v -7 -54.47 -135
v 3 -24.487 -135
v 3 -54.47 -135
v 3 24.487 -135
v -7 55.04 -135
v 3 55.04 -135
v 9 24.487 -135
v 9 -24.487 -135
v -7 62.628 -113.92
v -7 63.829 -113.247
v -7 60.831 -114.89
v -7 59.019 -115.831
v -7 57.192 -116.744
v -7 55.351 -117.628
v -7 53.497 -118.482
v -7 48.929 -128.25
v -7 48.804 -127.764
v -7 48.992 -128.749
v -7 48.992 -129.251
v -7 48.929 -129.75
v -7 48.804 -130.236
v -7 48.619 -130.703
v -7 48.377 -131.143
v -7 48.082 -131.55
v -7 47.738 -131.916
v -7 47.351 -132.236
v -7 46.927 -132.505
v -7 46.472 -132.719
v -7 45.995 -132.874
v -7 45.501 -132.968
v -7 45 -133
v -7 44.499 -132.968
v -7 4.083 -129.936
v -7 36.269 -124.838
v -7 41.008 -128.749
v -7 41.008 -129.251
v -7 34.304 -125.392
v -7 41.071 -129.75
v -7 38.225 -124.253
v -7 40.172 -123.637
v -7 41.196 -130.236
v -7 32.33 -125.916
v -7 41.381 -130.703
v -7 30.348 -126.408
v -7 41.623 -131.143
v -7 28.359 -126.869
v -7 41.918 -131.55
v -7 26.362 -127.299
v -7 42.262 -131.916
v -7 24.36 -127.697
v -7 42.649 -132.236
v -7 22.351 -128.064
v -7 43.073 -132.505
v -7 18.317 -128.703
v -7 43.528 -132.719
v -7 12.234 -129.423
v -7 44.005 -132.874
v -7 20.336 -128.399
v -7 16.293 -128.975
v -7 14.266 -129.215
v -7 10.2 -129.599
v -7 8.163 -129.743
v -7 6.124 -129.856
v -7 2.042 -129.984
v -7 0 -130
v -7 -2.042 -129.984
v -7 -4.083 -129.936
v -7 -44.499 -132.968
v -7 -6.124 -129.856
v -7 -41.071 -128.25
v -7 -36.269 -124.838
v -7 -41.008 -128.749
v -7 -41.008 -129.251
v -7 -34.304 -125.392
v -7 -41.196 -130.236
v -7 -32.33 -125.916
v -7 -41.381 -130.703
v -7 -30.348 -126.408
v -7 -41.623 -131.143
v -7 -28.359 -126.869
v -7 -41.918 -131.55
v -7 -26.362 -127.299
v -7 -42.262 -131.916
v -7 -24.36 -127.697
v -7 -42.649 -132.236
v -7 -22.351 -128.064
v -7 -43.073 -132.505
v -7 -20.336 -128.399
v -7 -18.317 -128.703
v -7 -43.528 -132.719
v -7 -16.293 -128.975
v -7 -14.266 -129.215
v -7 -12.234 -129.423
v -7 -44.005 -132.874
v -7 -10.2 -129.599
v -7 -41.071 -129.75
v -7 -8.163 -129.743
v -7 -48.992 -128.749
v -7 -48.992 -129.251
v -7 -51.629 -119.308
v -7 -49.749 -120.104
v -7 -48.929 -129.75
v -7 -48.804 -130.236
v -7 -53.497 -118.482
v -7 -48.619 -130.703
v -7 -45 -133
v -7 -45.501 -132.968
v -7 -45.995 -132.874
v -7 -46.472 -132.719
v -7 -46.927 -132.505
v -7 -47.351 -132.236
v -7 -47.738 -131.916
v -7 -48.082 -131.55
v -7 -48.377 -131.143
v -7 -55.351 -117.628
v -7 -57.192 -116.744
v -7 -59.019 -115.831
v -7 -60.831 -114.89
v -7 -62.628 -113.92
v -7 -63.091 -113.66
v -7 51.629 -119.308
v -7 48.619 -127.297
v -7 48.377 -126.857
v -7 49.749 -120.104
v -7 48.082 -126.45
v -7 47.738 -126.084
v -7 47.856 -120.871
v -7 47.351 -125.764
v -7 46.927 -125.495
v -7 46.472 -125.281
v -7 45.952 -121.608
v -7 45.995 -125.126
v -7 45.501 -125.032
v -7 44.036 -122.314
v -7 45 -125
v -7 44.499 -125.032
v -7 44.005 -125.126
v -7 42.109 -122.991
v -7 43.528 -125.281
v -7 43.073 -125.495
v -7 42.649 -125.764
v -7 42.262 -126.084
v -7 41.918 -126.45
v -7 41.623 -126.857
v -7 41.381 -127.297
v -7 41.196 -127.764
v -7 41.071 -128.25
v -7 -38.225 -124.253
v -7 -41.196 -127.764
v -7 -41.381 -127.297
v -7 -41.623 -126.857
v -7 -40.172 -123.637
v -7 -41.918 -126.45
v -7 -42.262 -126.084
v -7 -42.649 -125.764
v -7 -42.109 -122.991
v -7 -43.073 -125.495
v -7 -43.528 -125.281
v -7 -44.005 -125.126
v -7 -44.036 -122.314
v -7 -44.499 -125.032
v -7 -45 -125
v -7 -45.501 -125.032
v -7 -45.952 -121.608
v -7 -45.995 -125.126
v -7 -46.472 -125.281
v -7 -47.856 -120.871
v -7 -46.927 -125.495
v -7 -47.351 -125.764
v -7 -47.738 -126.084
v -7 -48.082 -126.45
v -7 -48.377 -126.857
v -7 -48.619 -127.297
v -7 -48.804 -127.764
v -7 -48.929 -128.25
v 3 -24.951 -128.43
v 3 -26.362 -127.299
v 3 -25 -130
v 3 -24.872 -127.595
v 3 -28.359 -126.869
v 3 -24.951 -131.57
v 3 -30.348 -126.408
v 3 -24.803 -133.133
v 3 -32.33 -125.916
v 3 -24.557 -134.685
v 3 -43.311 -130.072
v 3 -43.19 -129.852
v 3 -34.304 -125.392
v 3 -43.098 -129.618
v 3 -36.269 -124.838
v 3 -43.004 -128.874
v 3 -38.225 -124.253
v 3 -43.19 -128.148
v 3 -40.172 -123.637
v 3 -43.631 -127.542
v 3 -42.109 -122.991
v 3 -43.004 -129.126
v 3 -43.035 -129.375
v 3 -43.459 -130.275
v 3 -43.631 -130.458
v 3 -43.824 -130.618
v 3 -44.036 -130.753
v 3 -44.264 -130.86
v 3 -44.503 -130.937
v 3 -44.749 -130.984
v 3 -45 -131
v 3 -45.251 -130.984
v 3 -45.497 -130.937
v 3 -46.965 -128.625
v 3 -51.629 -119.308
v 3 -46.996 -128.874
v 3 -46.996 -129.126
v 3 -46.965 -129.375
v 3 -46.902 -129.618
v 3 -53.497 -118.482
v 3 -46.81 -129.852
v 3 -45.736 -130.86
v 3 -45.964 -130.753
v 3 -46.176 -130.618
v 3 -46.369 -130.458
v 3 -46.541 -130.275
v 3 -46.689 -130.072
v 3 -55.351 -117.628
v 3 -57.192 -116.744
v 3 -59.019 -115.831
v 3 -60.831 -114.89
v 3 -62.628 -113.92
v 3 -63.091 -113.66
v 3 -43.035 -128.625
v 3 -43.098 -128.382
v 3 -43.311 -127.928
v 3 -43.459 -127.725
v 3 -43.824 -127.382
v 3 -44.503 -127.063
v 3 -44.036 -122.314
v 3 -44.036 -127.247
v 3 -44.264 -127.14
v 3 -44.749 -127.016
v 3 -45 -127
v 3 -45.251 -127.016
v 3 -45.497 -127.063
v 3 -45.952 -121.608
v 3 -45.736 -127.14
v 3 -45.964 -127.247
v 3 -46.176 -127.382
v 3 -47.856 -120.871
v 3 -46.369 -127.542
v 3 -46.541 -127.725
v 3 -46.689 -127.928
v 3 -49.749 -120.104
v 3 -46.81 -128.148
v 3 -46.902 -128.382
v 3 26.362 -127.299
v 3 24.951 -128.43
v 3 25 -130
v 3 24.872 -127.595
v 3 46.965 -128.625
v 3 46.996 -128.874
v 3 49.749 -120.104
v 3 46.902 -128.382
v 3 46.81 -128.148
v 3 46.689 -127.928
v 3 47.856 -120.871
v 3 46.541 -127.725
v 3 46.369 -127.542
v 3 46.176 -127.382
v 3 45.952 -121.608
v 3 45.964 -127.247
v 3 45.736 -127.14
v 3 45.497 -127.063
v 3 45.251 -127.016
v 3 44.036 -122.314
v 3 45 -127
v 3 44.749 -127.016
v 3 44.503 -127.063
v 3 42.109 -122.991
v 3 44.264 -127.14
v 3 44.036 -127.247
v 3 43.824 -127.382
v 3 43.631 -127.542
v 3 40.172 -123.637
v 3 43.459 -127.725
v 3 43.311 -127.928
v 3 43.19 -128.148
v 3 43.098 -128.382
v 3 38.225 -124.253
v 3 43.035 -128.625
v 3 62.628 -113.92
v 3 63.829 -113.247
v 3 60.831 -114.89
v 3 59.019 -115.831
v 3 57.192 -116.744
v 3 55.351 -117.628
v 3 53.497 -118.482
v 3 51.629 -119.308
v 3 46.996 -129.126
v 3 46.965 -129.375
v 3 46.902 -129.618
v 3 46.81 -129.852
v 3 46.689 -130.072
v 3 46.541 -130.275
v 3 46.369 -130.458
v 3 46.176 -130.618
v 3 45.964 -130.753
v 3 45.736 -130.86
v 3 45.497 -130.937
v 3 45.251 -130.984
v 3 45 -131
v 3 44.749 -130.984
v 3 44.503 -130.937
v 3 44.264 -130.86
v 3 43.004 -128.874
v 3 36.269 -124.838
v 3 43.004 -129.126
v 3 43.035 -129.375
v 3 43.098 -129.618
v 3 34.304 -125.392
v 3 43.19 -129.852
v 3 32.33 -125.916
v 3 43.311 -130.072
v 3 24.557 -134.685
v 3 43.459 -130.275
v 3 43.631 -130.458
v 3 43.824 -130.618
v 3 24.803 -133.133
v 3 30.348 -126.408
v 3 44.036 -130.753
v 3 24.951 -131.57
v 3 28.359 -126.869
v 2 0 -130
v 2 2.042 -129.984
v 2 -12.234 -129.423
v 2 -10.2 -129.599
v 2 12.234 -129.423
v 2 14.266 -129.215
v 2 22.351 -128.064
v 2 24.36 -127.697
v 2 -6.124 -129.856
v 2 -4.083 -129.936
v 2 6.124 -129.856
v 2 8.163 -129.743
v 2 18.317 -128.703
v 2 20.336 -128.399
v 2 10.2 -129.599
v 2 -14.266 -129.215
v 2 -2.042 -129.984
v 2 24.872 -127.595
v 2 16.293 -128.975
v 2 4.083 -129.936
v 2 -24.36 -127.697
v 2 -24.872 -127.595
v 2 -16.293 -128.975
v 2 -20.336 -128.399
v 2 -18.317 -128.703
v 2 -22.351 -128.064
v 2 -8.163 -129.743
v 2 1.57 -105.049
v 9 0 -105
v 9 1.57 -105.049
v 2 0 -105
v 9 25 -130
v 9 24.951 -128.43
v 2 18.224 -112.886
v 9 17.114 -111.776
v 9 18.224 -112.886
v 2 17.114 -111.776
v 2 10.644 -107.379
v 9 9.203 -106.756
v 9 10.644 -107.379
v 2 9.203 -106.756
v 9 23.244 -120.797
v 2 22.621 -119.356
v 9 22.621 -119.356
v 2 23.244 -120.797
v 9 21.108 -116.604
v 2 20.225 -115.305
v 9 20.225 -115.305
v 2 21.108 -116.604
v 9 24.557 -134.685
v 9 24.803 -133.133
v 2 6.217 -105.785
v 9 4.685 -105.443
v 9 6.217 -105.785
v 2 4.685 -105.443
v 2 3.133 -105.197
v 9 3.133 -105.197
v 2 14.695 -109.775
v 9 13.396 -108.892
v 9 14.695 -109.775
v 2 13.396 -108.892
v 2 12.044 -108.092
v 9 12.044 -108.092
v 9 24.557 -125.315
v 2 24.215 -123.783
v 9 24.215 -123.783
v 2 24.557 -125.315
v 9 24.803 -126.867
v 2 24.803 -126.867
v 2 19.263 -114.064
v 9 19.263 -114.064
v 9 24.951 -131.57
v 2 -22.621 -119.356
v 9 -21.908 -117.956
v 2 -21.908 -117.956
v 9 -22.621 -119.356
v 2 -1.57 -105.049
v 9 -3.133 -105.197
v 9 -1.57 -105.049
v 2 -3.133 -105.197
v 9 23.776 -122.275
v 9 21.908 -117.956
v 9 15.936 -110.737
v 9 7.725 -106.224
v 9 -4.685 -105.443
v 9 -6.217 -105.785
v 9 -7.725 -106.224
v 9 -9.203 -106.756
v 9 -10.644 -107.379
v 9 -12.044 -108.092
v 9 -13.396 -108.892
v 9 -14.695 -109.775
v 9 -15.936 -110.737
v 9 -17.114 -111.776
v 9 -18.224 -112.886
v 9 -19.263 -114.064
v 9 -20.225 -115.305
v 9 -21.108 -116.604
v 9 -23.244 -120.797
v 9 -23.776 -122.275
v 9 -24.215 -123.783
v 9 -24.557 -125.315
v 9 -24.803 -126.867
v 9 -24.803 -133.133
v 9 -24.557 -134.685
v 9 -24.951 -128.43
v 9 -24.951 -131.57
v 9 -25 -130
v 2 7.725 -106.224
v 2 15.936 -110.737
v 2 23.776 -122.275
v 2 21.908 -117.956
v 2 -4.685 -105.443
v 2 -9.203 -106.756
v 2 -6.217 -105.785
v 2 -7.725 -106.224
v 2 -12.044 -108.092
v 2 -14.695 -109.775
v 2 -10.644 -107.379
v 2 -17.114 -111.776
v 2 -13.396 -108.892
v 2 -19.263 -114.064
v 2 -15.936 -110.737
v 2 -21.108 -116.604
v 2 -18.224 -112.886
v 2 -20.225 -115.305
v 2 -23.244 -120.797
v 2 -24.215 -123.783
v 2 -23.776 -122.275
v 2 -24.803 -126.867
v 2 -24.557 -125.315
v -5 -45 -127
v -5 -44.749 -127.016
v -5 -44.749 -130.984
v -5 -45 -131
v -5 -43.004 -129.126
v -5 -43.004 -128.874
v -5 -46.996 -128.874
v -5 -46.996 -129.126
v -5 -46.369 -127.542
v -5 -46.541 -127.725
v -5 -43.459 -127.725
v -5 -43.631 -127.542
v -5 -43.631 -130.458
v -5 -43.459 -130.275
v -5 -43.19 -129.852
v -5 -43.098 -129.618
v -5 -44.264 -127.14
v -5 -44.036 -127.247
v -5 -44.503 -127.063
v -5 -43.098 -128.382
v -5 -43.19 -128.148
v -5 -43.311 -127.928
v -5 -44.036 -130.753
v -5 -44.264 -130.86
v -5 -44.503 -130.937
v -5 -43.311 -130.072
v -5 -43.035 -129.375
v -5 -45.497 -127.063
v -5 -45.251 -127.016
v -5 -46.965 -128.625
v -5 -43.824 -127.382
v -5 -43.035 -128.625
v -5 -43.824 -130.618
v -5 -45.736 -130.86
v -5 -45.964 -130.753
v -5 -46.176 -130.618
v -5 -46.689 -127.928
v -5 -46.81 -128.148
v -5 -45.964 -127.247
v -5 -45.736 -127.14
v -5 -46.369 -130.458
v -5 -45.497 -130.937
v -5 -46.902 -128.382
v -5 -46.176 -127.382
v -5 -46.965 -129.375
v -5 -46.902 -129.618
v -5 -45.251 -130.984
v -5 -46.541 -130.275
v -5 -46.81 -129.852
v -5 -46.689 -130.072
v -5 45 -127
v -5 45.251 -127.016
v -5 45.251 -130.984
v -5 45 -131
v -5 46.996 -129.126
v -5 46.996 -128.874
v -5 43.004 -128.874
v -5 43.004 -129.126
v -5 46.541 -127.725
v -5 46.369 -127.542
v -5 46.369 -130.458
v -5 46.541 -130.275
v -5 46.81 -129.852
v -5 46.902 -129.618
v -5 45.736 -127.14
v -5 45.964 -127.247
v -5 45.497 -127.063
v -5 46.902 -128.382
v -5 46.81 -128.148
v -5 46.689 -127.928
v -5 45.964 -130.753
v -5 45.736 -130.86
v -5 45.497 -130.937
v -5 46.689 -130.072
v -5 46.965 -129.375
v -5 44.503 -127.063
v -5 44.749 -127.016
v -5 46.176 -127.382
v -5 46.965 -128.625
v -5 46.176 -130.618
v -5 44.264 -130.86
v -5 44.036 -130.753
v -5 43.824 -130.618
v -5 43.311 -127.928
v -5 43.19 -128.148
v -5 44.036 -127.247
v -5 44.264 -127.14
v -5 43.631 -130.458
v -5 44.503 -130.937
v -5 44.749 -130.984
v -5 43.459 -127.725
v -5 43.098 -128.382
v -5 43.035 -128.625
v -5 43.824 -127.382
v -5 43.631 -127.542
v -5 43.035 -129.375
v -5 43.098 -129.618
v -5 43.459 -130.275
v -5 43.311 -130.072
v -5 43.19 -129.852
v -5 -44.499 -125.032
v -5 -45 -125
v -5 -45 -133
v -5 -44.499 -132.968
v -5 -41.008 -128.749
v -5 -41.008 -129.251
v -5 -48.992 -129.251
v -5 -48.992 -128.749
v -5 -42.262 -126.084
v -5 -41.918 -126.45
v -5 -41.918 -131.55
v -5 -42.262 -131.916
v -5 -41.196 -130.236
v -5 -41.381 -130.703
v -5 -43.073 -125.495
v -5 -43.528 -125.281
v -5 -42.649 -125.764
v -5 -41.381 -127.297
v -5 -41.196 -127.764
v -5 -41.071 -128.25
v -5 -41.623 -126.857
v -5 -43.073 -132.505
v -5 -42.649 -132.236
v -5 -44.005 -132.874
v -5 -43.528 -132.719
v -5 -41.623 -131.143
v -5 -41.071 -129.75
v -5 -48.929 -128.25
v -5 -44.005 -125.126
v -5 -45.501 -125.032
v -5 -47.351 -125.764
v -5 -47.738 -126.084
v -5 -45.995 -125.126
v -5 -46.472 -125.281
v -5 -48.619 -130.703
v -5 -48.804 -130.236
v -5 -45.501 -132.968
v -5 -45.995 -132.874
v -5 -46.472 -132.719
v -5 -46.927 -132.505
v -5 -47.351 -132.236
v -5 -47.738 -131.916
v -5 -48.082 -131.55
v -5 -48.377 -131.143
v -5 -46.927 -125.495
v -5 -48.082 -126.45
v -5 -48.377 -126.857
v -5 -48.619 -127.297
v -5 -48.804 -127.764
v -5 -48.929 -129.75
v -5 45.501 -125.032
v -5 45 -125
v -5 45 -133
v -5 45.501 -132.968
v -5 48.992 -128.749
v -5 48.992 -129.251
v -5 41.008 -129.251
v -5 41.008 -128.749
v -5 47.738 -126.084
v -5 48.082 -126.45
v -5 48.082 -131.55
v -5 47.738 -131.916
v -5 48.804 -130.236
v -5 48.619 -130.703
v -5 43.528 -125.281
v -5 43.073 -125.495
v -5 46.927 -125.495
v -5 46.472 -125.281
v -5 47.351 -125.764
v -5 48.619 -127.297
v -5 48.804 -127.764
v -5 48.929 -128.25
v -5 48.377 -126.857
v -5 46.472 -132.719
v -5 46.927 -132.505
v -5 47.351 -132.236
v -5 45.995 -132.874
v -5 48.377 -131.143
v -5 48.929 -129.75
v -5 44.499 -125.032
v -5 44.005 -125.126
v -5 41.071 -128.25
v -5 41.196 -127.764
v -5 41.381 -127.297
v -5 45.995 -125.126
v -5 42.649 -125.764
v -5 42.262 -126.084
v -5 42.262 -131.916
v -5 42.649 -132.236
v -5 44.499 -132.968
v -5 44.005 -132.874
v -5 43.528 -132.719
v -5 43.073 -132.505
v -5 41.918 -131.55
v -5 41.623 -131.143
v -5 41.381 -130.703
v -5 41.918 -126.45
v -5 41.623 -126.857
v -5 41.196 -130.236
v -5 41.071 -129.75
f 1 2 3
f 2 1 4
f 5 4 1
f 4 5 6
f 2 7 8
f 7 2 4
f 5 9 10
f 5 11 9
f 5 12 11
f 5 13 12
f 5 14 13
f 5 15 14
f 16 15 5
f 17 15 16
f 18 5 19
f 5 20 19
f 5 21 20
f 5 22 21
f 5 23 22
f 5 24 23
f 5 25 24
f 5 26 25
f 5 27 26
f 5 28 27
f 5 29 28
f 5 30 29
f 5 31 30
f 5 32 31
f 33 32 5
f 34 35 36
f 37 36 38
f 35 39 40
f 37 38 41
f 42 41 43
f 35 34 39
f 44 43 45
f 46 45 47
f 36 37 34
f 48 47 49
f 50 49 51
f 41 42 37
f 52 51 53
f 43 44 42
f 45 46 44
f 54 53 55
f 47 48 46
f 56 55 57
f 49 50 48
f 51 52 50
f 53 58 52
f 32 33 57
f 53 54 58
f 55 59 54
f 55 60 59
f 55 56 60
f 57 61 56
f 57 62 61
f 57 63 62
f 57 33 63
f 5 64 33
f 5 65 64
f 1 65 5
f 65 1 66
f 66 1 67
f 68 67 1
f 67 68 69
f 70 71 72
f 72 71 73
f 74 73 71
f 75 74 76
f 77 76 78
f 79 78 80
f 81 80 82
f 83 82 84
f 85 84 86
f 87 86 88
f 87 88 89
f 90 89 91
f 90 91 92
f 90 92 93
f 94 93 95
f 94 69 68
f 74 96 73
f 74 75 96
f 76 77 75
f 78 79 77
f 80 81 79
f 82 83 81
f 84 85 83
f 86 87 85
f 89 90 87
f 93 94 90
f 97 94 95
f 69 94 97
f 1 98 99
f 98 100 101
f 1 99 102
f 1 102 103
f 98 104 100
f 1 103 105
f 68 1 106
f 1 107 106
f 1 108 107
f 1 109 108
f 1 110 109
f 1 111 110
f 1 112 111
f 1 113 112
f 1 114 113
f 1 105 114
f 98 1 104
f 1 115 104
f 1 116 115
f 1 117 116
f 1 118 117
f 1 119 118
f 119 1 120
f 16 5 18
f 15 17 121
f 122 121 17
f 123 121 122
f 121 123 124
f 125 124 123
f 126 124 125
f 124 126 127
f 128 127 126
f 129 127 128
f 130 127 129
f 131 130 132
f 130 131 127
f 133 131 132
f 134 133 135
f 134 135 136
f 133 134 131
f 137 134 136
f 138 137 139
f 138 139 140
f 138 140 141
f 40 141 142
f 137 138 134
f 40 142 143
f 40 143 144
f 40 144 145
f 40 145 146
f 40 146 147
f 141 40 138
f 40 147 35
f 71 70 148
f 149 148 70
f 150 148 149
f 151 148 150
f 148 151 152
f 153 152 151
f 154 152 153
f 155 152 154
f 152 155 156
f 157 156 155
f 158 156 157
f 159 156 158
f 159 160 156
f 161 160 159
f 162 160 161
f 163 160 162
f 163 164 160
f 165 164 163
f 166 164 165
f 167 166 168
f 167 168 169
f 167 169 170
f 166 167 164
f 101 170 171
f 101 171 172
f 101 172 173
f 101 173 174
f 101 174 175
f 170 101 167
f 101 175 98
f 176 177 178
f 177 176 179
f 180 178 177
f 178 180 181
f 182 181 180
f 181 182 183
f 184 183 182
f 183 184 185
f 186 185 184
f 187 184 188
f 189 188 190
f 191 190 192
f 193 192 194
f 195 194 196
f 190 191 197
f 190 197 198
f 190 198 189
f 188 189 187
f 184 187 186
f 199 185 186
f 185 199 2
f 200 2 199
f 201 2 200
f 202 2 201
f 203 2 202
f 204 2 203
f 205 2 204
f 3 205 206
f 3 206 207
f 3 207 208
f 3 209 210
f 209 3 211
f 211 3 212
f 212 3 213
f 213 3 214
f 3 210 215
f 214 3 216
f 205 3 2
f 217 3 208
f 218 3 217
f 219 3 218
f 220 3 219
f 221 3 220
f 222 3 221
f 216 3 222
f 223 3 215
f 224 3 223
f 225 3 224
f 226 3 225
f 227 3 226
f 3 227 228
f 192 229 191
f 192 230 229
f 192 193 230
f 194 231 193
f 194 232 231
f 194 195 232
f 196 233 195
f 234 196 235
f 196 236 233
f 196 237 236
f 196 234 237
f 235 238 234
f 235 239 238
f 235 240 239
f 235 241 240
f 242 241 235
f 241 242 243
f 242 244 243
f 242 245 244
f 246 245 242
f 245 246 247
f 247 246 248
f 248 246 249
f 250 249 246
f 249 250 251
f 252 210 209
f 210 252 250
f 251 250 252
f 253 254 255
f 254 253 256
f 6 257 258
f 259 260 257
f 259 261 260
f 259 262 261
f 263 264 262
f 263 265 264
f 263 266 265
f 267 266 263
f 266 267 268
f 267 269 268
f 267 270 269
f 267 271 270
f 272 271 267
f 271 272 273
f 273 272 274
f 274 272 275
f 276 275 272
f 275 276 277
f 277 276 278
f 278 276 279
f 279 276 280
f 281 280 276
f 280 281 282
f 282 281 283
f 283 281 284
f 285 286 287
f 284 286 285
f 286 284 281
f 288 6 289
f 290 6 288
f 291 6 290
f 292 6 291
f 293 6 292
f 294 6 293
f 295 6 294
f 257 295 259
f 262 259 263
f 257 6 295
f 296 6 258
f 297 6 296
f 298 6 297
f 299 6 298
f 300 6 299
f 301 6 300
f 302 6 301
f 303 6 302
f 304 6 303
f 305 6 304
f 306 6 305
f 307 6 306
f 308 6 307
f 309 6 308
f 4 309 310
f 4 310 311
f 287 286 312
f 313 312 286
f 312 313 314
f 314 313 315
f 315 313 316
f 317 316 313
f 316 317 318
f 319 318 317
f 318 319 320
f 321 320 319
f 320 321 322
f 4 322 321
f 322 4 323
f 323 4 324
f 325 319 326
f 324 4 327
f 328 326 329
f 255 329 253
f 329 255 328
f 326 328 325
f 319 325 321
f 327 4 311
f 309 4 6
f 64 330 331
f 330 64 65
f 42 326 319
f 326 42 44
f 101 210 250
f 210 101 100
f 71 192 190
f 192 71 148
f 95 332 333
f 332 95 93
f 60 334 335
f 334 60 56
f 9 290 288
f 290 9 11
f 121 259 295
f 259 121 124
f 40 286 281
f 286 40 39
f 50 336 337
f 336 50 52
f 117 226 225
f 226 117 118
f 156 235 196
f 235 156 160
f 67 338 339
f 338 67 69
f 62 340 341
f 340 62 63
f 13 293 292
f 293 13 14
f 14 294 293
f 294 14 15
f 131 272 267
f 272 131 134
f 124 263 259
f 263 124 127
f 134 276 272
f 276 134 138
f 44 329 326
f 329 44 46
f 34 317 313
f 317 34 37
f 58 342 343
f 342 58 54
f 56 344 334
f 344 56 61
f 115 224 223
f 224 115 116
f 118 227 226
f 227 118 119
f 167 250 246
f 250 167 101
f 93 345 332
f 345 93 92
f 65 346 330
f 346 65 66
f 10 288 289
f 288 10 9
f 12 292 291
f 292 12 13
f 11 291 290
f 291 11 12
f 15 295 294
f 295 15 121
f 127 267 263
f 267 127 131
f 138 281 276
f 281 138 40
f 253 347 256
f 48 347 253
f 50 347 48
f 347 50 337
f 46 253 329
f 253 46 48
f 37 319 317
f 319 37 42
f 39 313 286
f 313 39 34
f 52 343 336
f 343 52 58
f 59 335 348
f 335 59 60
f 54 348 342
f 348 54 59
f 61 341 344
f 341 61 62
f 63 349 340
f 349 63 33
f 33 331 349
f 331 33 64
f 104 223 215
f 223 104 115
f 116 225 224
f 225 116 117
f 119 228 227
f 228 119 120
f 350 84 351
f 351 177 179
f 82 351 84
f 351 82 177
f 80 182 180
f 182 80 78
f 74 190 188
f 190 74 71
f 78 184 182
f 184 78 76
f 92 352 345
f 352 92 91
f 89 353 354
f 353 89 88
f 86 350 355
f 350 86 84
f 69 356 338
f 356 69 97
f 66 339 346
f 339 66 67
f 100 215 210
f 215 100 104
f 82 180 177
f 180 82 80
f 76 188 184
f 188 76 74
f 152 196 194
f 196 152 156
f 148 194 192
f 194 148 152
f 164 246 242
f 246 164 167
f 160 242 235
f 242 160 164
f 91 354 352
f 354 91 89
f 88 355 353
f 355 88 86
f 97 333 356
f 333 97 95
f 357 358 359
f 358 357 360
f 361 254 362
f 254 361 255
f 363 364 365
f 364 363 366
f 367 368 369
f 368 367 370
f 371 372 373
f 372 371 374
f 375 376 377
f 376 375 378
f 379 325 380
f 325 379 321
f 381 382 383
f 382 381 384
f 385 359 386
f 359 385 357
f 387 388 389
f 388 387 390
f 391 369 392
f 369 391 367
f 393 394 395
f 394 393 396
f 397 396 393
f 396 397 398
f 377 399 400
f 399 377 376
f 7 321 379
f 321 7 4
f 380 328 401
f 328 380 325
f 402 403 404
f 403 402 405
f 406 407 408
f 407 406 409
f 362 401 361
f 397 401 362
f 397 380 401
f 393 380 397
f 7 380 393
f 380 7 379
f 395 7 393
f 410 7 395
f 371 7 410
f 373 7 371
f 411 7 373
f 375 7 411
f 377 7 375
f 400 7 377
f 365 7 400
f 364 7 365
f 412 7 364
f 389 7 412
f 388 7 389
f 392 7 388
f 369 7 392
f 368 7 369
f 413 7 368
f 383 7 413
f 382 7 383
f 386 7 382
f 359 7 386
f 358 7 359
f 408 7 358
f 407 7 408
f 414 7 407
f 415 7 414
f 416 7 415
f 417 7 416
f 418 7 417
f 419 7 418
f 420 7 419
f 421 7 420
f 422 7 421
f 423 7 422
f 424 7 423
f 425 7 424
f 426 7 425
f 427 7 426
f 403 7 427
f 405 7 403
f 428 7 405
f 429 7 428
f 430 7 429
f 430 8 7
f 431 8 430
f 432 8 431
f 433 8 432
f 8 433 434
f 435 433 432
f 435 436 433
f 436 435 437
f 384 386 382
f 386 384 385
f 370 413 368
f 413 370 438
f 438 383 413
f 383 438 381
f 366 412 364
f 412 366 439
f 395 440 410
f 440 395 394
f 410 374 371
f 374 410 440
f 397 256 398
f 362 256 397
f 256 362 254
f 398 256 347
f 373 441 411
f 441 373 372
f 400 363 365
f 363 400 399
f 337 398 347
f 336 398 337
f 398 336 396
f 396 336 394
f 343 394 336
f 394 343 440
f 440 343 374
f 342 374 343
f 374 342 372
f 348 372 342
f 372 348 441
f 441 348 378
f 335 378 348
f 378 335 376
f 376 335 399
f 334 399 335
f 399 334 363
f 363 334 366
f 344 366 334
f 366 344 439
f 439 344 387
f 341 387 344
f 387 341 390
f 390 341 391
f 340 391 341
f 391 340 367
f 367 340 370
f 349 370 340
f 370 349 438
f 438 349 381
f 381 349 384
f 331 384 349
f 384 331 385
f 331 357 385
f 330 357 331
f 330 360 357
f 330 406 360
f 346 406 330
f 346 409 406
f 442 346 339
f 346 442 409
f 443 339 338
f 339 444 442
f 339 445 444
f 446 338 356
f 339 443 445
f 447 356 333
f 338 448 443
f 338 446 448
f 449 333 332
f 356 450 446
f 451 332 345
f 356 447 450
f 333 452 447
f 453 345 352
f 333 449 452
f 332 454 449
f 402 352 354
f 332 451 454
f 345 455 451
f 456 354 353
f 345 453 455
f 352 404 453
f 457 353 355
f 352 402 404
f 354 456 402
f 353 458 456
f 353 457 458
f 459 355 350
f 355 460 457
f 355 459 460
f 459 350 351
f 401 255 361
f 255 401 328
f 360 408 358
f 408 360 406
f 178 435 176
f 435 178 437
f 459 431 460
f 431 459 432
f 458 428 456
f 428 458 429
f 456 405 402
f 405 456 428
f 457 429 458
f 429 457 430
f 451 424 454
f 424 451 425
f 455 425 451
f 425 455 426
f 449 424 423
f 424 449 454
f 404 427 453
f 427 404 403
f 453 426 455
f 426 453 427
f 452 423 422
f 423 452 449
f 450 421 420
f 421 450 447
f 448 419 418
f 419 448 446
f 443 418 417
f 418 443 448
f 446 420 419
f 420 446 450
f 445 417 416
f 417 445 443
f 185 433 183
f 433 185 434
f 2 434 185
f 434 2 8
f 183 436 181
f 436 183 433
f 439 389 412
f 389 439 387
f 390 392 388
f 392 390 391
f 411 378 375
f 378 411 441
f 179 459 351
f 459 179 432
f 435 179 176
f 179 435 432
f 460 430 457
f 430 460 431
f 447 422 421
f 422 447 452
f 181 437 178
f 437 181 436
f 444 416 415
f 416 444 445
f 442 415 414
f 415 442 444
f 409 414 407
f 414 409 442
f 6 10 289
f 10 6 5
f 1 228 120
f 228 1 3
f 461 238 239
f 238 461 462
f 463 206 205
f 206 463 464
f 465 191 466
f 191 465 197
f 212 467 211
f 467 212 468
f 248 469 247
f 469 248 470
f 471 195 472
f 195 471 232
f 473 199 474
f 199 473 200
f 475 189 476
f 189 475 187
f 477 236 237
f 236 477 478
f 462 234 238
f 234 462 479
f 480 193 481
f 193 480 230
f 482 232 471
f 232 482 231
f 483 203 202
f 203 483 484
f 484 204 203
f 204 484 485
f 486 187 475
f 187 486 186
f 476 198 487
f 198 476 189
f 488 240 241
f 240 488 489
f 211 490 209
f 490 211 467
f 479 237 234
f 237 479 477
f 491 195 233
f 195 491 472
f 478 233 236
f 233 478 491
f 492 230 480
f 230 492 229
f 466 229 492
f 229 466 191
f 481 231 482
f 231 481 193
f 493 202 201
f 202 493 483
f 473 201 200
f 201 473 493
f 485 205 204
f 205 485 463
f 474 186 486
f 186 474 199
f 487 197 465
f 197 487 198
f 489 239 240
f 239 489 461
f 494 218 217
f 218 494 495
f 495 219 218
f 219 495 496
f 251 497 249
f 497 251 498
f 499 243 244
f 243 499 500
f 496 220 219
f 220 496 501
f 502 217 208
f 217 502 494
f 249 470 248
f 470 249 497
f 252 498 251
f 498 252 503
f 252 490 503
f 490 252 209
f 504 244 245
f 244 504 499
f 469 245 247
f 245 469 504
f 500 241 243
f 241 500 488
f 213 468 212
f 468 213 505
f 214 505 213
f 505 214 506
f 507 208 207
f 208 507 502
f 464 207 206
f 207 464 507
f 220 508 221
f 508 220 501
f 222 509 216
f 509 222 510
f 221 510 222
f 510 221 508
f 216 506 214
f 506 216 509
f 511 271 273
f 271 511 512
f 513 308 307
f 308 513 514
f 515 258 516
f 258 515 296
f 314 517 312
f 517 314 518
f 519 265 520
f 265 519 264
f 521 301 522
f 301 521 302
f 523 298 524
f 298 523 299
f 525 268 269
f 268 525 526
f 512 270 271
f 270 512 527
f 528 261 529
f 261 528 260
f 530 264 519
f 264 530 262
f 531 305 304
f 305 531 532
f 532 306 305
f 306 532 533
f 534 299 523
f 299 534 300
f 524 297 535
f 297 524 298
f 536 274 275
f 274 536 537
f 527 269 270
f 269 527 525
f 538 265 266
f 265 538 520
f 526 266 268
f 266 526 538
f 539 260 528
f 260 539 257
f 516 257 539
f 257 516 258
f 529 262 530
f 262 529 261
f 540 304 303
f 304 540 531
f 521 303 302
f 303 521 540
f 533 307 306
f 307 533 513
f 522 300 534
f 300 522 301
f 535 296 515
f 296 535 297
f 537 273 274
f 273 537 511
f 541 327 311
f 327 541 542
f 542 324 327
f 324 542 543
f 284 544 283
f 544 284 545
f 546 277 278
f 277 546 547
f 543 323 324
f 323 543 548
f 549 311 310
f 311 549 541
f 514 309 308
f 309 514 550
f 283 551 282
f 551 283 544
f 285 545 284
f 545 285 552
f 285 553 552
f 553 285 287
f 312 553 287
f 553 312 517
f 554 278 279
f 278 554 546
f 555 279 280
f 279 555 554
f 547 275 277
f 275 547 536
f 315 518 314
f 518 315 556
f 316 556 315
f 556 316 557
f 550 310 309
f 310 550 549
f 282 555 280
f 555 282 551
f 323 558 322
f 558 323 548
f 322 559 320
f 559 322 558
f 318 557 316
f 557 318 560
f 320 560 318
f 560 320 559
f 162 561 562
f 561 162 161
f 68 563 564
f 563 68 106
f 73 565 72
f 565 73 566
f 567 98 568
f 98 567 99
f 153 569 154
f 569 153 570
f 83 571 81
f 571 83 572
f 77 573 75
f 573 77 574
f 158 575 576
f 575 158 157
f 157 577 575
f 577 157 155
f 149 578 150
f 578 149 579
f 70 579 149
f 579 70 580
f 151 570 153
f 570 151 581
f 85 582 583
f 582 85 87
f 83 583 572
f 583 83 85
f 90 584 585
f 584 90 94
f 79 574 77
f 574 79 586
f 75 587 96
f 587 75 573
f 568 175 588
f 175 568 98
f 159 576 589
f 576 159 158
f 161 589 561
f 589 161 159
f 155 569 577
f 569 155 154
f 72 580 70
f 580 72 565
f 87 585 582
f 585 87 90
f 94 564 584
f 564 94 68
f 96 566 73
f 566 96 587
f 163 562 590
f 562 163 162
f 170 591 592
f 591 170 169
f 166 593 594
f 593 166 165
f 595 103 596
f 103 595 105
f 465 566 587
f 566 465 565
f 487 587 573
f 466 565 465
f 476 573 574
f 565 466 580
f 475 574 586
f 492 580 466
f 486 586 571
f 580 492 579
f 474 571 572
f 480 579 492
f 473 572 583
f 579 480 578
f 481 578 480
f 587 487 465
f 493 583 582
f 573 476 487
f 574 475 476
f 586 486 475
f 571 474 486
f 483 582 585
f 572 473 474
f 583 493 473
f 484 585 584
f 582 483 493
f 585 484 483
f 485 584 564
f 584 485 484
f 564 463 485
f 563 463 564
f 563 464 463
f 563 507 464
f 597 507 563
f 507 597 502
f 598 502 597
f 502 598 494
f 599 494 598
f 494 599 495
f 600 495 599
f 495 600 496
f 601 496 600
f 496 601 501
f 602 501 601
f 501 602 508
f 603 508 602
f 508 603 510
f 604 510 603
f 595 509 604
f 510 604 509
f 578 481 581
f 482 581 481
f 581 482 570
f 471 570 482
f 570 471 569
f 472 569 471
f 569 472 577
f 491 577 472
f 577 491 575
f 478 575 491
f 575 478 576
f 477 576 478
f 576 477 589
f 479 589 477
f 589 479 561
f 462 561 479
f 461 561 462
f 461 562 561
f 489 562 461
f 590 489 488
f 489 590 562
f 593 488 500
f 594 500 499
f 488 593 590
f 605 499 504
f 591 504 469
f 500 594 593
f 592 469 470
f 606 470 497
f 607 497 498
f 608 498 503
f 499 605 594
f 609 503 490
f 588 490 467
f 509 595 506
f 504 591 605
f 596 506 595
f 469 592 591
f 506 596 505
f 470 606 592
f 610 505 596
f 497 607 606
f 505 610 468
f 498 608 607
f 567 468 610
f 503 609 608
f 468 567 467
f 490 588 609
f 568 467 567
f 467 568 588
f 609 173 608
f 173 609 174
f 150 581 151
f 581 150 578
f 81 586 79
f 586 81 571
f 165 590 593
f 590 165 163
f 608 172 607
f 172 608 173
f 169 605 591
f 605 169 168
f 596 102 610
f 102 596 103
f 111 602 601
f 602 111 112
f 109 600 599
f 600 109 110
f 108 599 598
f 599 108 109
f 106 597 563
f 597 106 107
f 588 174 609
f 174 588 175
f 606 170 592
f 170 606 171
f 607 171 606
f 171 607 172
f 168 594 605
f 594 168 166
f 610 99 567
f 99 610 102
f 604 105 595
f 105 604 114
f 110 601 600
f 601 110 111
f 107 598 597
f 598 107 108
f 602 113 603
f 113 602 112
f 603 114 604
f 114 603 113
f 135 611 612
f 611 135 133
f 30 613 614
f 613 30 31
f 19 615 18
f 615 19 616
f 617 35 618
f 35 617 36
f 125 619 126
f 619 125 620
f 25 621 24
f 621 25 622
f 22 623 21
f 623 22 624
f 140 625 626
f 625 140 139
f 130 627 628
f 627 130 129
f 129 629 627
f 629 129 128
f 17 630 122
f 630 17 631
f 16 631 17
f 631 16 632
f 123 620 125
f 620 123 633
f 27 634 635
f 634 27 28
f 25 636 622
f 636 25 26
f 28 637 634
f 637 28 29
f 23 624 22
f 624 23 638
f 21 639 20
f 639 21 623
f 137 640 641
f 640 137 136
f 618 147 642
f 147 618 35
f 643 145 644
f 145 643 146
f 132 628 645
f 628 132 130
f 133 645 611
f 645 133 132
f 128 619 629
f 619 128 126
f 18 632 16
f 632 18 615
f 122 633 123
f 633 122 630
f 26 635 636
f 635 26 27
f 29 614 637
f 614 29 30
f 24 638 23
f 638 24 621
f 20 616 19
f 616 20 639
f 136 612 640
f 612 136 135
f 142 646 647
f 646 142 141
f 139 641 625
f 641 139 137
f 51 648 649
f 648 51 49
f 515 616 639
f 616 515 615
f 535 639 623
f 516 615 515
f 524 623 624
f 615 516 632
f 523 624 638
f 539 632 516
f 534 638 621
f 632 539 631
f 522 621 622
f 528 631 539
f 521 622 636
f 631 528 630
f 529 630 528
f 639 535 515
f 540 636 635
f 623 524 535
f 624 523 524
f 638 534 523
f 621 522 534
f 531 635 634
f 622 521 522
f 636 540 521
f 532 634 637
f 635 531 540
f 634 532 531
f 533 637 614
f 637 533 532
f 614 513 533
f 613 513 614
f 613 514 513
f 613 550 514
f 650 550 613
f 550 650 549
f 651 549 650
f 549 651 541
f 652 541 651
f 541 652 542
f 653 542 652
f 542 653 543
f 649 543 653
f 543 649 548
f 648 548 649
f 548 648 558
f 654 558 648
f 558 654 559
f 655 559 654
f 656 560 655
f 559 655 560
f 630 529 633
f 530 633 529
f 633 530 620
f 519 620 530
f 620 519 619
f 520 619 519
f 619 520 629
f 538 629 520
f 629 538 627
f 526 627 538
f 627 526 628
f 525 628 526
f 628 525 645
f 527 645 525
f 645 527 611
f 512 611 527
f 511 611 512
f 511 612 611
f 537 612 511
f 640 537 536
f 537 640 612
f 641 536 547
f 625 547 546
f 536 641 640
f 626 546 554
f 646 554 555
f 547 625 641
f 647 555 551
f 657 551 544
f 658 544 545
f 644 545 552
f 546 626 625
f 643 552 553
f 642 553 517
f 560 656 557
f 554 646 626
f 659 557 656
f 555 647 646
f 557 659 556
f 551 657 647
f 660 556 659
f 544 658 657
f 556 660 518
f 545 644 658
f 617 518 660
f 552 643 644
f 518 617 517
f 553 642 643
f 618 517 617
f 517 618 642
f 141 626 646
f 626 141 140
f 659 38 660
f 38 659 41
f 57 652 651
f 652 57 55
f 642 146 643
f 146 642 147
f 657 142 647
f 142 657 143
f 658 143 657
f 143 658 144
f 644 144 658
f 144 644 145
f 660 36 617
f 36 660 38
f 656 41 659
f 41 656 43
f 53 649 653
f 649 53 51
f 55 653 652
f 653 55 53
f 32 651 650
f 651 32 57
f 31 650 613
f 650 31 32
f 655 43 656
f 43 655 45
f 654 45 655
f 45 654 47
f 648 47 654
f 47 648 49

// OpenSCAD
// FSR mount and bed retainer for hybrid delta printer
// using Johann's aluminum brackets and 270mm 15x15 openbeam
// extrusions.

// currently fixed size and approximated, plan is to make it
// parametric based on plate diameter, beam size, bracket offset


bed_diameter = 240;
beam_width = 15;

beam_length = 270;
// AND
bracket_offset = 0;
// OR
side_length = 0;
// width between outside edges of beam at edge of glass
beam_span_at_edge = 115;


rotate([0,-90,0])
difference(){
	union(){
		difference() {
			translate([-35,0,2])
				cube([200,130,10],center=true);
			cylinder(r=130,h=15,$fn=400,center=true);
		}
			translate([-130,0,-9])
				cylinder(r=25,h=7,$fn=100);
	}
	translate([-205,-75,-10])
		cube([70,150,20]);
	translate([-145,51,-10])
		rotate([0,0,22])
			cube([50,20,20]);
	translate([-145,-72,-10])
		rotate([0,0,-22])
			cube([50,20,20]);
	translate([-129,-45,-5])
		cylinder(r=2,h=20,$fn=50);
	translate([-129,45,-5])
		cylinder(r=2,h=20,$fn=50);
	translate([-129,-45,5])
		cylinder(r=4,h=20,$fn=50);
	translate([-129,45,5])
		cylinder(r=4,h=20,$fn=50);
}
